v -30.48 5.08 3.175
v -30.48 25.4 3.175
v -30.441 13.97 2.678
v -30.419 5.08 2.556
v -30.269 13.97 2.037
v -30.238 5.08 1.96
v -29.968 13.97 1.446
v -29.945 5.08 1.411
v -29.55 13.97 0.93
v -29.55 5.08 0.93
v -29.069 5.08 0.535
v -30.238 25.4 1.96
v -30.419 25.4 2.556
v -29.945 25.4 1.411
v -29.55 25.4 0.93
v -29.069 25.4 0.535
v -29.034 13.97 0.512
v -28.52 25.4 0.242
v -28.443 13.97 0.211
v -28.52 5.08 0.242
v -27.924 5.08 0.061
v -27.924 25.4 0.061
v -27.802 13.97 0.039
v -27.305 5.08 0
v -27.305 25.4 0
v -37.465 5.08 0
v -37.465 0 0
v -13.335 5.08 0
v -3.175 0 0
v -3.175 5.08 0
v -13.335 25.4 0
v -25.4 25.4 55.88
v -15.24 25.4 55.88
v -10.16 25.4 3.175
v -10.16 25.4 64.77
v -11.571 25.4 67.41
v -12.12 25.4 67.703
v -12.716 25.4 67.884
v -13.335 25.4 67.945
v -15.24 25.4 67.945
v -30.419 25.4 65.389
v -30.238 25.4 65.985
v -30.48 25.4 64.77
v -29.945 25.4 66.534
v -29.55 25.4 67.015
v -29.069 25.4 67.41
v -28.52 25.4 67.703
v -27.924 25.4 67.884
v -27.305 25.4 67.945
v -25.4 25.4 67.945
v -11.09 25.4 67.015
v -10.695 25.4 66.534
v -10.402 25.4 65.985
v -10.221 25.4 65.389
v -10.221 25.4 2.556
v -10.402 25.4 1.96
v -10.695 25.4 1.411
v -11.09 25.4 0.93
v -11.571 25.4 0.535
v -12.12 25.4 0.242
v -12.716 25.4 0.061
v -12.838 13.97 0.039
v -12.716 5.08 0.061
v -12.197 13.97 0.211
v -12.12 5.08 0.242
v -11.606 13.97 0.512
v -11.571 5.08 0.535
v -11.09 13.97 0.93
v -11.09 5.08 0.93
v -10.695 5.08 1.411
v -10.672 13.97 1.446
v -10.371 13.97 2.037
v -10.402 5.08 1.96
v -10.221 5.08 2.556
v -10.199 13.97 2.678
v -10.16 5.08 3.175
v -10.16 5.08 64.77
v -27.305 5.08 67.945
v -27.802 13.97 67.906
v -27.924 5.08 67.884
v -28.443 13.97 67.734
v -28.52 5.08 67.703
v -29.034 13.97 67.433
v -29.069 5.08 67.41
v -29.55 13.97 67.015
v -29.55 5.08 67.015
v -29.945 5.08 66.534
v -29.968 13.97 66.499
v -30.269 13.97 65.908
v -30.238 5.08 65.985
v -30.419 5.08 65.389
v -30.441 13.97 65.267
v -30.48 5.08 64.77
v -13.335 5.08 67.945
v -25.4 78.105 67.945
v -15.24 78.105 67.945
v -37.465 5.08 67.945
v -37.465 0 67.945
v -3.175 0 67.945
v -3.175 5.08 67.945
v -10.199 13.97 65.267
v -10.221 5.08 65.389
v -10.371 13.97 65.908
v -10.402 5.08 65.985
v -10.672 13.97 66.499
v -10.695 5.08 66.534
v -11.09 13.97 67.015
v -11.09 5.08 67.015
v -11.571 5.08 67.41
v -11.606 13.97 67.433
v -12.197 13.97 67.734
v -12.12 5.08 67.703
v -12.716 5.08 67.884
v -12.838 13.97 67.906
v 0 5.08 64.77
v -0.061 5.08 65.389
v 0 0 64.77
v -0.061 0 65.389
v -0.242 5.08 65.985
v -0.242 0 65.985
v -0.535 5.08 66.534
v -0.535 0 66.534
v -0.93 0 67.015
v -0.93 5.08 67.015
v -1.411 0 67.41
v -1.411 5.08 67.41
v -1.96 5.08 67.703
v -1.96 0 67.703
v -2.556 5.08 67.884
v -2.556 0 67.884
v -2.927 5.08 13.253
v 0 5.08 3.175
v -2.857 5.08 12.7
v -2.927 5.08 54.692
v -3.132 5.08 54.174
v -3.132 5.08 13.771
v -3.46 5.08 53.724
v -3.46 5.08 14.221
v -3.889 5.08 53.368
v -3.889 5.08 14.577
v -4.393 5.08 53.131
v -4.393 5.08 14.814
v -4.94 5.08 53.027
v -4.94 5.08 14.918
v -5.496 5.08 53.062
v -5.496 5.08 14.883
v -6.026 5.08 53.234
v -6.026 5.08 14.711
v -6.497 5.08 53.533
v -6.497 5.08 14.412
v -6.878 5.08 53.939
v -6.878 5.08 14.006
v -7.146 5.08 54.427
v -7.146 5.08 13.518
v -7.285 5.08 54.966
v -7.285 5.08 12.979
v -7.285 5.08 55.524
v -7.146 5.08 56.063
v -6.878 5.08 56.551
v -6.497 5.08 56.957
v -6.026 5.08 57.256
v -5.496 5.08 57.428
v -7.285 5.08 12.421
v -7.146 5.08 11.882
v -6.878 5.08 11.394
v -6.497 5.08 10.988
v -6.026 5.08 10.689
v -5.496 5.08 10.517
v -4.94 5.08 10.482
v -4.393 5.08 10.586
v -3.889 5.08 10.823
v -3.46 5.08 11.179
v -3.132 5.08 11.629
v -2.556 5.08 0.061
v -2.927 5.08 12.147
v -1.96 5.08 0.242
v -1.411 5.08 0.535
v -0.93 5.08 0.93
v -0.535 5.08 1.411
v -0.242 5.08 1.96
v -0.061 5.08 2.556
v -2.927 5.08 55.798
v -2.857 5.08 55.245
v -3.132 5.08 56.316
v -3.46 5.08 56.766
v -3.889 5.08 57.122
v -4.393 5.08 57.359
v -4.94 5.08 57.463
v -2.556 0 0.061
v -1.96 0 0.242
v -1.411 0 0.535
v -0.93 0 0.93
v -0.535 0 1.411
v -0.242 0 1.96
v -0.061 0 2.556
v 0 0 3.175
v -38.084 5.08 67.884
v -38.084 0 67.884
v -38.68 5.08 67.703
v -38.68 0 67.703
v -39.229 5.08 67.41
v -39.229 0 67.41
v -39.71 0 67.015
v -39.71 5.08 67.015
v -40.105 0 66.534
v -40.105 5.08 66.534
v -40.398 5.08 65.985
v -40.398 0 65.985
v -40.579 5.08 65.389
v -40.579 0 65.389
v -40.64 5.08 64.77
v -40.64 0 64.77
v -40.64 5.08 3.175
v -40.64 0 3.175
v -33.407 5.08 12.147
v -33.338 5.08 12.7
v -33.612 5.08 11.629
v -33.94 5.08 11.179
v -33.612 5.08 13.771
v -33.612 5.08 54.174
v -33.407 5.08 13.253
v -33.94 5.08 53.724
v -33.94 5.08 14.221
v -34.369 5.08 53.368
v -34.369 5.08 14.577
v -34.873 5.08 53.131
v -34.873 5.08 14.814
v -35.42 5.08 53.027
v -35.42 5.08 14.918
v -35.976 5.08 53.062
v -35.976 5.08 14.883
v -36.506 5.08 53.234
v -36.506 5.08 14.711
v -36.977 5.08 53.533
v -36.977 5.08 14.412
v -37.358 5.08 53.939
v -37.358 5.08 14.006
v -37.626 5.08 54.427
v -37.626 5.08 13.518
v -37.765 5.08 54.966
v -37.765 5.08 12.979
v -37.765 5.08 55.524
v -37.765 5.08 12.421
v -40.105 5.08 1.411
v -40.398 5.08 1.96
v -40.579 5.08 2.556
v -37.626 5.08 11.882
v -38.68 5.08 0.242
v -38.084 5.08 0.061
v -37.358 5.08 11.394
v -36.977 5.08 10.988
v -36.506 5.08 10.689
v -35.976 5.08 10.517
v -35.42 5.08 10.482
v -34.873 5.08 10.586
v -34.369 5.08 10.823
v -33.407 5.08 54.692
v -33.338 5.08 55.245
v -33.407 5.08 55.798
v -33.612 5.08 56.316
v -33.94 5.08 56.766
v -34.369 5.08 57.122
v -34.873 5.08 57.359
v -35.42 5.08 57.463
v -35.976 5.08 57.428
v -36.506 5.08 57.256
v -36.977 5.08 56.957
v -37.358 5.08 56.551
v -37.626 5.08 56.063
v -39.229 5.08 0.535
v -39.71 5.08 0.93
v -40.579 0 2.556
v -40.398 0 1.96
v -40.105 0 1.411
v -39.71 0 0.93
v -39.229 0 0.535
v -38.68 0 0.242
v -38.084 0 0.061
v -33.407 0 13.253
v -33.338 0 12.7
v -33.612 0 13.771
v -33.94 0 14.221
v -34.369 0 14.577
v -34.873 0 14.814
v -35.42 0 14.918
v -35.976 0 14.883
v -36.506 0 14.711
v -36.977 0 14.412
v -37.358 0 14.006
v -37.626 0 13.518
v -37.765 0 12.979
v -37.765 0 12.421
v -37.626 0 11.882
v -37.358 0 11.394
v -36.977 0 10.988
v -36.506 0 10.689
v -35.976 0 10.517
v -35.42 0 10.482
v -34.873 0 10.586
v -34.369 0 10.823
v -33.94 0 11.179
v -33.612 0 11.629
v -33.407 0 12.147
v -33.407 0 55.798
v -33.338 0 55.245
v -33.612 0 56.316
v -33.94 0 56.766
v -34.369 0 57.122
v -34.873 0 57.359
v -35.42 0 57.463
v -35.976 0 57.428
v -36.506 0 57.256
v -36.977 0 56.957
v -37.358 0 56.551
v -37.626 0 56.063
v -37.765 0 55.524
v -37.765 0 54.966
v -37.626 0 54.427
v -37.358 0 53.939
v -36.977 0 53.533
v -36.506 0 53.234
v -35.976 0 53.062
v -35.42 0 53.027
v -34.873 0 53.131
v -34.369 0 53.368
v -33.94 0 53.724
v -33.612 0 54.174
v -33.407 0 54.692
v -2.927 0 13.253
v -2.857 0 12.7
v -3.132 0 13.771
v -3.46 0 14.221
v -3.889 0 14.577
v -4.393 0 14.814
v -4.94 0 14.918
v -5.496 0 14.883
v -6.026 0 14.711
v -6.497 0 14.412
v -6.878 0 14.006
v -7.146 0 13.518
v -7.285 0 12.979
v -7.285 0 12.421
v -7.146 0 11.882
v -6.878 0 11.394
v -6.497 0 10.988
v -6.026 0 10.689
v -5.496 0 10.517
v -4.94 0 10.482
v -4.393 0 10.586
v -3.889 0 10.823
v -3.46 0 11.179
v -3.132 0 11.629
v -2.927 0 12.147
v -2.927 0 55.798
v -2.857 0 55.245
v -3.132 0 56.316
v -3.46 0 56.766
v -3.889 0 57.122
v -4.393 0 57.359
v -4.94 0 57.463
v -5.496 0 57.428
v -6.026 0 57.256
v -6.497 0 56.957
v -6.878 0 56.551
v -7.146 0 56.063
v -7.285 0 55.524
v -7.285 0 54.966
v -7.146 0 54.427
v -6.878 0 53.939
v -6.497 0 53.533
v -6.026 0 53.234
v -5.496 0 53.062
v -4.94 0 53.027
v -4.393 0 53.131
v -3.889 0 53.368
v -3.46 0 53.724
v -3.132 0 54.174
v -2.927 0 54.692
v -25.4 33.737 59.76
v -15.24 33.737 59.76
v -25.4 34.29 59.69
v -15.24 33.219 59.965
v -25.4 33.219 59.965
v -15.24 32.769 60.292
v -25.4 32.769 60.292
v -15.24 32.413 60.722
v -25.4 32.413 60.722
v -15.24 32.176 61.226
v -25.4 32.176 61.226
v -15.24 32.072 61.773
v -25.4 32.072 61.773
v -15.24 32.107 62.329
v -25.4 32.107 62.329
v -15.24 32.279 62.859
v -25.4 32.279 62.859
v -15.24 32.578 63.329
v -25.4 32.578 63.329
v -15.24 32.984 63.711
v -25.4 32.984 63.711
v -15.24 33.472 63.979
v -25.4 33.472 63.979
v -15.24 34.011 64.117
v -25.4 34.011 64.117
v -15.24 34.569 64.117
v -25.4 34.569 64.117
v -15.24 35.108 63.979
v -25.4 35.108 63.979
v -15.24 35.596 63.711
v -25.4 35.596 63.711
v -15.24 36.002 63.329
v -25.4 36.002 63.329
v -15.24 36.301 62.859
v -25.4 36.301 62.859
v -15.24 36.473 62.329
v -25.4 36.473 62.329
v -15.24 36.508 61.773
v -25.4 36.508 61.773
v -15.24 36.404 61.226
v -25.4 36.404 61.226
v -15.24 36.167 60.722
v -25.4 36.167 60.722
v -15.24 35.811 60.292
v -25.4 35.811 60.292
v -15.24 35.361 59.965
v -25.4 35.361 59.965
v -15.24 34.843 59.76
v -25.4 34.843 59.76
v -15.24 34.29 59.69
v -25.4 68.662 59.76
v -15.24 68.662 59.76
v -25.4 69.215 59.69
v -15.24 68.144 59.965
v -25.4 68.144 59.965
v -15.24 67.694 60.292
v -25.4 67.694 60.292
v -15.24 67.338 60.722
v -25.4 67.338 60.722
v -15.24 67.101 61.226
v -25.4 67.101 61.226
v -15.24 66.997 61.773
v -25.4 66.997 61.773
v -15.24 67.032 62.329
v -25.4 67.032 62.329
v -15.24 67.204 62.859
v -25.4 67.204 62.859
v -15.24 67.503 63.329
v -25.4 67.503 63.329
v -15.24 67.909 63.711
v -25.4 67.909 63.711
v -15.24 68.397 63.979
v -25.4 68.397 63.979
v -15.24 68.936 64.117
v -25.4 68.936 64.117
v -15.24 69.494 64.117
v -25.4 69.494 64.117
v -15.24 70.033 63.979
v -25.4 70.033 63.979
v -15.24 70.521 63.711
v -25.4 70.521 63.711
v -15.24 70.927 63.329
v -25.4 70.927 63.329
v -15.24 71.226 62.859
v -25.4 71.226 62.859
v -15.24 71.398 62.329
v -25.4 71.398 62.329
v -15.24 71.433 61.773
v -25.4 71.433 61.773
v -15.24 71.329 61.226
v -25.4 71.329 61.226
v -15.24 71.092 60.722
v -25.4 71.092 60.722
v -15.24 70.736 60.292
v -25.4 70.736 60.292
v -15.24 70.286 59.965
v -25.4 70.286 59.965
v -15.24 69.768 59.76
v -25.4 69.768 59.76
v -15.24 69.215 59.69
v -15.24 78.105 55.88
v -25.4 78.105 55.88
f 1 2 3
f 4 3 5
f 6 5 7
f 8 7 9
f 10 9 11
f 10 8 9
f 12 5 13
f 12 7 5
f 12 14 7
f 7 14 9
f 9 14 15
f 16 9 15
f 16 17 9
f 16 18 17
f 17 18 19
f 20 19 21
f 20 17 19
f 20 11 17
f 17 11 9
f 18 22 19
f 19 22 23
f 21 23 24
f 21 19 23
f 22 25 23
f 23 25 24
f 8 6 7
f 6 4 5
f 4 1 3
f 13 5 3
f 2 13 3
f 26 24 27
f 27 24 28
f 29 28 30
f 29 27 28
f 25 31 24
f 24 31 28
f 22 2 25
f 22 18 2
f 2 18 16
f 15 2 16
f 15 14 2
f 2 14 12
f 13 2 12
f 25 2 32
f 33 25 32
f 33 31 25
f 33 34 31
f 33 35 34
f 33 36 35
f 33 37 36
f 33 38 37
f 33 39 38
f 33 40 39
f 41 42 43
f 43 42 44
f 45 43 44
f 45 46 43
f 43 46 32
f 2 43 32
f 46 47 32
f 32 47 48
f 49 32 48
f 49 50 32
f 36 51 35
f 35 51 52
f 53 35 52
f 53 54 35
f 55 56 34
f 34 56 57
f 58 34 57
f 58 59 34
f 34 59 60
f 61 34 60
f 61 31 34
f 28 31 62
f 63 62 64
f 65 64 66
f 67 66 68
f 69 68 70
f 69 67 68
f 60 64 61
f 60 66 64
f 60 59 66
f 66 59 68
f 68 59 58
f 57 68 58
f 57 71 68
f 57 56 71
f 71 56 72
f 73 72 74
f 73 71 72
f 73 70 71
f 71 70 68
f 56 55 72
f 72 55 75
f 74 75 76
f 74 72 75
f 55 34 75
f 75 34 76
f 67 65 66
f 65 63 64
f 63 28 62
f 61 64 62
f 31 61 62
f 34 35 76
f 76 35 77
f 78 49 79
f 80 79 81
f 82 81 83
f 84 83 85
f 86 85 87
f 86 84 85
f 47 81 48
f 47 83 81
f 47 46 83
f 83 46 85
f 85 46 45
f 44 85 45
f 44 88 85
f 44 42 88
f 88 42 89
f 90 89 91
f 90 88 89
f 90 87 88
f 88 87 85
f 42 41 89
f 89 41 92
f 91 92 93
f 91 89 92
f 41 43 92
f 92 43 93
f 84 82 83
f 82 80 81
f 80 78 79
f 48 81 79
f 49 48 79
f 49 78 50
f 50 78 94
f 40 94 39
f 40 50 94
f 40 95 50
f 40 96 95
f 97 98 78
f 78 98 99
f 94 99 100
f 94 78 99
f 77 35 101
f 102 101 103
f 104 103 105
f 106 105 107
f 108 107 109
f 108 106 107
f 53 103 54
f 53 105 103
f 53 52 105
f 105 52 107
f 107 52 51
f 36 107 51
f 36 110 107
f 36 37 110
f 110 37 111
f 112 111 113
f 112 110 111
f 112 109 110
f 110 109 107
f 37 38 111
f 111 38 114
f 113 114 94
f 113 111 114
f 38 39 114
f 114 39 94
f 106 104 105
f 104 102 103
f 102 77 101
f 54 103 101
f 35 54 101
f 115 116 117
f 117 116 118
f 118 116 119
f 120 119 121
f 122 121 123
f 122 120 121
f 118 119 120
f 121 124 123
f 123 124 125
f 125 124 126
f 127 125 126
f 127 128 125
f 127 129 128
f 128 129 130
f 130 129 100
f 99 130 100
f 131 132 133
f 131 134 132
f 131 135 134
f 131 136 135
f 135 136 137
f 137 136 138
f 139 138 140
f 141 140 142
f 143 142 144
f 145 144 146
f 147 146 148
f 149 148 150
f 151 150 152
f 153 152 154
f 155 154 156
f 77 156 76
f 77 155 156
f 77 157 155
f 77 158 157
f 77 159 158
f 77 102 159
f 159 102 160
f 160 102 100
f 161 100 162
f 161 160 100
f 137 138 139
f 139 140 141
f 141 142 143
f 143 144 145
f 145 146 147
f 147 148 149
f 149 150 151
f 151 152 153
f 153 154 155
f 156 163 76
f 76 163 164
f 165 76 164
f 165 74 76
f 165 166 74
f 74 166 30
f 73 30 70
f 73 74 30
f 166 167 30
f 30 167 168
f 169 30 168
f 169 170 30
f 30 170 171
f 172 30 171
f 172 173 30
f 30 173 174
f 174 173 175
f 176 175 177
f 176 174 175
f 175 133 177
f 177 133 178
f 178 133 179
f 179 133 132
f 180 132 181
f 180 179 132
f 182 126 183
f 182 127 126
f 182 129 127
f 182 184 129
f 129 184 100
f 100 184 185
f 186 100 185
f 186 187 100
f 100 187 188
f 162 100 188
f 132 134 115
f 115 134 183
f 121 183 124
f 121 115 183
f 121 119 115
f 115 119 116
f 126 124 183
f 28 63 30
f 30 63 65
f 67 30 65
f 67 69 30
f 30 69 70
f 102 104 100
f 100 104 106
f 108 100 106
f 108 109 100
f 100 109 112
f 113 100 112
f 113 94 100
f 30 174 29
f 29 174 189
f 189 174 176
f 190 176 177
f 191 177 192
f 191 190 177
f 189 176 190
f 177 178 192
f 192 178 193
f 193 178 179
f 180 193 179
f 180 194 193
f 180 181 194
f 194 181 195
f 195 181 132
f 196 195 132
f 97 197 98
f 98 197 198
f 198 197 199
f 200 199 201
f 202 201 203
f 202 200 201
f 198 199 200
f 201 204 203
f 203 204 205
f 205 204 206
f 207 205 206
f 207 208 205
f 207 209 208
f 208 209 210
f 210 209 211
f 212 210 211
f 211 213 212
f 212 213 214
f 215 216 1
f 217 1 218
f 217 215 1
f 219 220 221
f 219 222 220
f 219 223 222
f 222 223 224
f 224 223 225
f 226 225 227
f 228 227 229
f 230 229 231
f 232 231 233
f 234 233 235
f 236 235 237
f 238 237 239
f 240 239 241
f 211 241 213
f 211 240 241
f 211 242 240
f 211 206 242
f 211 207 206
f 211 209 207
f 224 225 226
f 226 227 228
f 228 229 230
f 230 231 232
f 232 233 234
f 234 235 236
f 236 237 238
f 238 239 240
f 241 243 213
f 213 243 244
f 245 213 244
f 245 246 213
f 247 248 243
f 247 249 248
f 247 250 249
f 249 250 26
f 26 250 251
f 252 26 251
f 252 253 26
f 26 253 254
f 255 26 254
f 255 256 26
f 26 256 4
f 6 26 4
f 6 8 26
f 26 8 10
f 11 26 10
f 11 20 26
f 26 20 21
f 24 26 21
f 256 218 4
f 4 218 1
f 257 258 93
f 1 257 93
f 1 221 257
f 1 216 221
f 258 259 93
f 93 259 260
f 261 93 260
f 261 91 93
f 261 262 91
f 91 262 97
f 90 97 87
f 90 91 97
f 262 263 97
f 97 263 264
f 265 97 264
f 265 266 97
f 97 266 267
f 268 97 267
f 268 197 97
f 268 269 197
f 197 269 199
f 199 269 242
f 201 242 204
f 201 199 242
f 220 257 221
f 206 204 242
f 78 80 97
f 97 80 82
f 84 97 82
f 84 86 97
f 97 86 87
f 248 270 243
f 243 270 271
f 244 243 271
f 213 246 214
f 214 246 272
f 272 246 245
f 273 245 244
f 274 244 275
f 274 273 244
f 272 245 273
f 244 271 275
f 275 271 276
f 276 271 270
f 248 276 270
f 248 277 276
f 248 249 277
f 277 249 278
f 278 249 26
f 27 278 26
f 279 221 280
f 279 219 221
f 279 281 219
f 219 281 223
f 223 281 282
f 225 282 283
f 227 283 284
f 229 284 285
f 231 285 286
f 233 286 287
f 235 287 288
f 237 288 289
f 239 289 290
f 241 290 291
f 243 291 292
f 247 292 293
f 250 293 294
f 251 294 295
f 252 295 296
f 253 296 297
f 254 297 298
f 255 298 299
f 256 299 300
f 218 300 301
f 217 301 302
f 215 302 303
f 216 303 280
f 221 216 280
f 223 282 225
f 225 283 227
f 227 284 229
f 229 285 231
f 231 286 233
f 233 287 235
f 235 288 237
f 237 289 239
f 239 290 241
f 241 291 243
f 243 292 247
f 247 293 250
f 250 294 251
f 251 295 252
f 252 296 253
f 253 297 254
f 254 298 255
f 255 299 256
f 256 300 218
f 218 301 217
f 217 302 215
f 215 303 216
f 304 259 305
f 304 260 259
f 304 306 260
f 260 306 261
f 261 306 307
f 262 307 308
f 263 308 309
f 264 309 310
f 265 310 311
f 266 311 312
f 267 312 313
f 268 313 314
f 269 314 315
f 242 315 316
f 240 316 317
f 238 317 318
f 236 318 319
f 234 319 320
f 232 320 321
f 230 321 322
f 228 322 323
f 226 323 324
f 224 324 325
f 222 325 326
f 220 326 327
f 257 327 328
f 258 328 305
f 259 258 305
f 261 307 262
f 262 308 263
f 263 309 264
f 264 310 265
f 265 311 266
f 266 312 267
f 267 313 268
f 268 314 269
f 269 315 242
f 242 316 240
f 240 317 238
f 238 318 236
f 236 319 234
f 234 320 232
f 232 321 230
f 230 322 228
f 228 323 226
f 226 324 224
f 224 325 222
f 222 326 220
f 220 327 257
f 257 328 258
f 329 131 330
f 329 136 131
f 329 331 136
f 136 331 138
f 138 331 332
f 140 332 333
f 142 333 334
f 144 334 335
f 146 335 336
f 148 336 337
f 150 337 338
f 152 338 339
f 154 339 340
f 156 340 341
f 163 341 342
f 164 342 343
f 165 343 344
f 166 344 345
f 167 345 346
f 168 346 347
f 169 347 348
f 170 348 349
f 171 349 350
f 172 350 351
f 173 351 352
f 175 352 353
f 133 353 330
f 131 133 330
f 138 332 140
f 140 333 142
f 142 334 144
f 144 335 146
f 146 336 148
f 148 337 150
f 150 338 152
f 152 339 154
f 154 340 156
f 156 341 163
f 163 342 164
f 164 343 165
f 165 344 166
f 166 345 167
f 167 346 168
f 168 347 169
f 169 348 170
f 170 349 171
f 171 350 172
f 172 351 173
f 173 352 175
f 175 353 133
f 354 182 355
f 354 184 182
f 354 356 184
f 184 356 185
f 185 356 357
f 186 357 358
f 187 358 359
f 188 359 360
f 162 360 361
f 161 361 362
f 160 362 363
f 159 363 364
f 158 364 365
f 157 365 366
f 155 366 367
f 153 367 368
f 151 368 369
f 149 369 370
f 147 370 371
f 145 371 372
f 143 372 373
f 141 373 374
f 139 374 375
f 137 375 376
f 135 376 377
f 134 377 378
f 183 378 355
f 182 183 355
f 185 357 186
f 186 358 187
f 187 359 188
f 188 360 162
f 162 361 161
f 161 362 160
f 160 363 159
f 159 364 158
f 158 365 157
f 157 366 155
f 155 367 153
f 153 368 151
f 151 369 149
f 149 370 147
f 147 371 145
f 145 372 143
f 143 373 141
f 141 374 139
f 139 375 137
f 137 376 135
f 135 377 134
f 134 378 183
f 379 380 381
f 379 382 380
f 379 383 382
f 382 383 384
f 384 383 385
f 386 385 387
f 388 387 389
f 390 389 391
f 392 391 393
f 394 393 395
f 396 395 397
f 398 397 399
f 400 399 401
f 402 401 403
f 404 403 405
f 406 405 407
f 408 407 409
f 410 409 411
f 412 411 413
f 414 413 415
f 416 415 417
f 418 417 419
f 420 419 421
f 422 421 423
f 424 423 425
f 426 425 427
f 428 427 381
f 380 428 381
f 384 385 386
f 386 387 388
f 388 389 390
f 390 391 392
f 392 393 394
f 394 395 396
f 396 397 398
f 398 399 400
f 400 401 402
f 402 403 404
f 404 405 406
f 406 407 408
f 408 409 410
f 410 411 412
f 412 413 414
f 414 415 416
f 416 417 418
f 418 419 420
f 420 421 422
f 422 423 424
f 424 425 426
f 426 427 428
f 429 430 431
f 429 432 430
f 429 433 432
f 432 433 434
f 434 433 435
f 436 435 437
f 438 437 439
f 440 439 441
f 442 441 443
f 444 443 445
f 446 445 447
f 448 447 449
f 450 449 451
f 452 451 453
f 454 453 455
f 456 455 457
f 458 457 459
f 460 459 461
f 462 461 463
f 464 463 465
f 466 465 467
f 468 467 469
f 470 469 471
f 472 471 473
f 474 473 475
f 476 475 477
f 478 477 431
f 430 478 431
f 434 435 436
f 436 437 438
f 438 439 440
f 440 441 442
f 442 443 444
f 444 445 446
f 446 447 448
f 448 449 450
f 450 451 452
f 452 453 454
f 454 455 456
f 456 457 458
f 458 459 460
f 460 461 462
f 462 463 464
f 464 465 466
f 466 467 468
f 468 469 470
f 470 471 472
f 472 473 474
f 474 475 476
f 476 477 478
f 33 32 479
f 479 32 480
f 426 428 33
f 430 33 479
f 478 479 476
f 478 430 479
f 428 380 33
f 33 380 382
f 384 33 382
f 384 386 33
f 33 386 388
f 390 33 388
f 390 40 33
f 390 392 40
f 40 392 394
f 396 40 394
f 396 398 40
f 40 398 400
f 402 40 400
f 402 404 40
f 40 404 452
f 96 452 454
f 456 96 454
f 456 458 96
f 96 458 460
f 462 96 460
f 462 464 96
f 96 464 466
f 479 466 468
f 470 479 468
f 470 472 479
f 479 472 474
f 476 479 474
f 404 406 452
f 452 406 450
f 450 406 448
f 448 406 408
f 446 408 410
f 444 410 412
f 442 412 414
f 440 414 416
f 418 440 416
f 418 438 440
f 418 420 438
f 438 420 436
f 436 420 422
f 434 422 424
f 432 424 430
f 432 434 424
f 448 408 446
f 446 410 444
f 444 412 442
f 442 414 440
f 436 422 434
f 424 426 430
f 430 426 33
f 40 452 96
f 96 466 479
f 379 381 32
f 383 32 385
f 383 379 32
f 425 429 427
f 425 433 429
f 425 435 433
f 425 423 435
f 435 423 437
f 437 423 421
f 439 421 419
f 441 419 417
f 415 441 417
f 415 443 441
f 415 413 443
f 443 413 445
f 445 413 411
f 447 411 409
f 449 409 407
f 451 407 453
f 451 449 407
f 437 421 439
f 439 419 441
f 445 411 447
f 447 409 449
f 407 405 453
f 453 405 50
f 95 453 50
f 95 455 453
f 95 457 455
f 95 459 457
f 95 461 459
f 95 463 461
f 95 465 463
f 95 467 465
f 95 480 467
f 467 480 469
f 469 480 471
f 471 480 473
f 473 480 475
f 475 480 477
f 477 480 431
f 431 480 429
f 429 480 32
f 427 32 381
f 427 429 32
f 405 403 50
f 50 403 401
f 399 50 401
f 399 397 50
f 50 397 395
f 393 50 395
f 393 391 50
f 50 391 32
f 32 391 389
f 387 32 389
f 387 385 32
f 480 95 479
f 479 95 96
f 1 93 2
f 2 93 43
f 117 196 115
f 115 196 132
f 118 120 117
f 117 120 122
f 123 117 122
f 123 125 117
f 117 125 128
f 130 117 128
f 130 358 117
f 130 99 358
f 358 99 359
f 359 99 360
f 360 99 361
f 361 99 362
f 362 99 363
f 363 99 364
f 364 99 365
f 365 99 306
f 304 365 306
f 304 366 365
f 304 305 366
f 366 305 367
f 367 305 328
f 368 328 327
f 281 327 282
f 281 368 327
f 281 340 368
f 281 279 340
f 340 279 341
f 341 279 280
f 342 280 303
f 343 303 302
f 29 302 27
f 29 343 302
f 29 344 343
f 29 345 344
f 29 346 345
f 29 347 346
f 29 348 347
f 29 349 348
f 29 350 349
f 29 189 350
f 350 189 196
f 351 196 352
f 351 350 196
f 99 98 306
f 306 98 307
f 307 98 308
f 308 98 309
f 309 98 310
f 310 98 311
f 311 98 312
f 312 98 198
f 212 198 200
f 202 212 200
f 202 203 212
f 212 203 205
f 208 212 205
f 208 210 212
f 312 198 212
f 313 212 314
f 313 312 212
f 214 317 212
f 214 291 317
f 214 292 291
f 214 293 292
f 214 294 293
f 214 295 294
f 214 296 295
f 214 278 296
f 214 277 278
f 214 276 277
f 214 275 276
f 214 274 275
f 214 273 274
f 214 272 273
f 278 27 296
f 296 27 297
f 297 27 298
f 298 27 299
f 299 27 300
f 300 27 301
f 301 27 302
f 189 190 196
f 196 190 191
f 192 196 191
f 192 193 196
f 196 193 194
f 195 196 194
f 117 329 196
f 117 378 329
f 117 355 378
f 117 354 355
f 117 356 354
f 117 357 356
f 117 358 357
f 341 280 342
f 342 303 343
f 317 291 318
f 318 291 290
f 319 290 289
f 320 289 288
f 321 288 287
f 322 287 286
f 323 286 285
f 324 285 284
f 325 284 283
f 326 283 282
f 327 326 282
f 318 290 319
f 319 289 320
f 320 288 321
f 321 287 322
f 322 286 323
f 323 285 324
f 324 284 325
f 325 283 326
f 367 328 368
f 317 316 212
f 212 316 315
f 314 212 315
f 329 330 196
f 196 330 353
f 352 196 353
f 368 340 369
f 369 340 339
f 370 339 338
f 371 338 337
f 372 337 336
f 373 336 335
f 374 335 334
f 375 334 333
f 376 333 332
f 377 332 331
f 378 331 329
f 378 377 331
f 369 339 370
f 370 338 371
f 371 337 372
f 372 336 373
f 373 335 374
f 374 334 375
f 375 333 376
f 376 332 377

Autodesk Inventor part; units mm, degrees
ref_plane "YZ Plane" through (0, 0, 0) normal (1, 0, 0) x (0, 1, 0)
ref_plane "XZ Plane" through (0, 0, 0) normal (0, 1, 0) x (-1, 0, 0)
ref_plane "XY Plane" through (0, 0, 0) normal (0, 0, 1) x (1, 0, 0)
sketch "Sketch1" plane through (0, 0, 0) normal (0, 1, 0) x (-1, 0, 0)
  line L0 (0, 0) -> (40.64, 0)
  line L1 (40.64, 0) -> (40.64, 67.945)
  line L2 (40.64, 67.945) -> (0, 67.945)
  line L3 (0, 67.945) -> (0, 0)
  line L4 (10.16, 0) -> (10.16, 67.945)
  line L5 (30.48, 0) -> (30.48, 67.945)
  dimension "d0" = 40.64
  dimension "d1" = 67.945
extrude "Extrusion1" add sketch "Sketch1" along normal blind 5.08
sketch "Sketch2" plane through (0, 5.08, 0) normal (0, 1, 0) x (1, 0, 0)
  line L0 (0, 0) -> (-40.64, 0) projected
  line L1 (-40.64, -67.945) -> (0, -67.945) projected
  line L2 (0, -67.945) -> (0, 0) projected
  line L3 (-10.16, 0) -> (-10.16, -67.945)
  line L4 (-30.48, 0) -> (-30.48, -67.945)
extrude "Extrusion2" add sketch "Sketch2" along normal blind 20.32 contours L3 L1 L4 L0
sketch "Sketch3" plane through (0, 25.4, 0) normal (0, 1, 0) x (1, 0, 0)
  line L0 (-30.48, -67.945) -> (-10.16, -67.945) projected
  line L1 (-10.16, -67.945) -> (-10.16, 0) projected
  line L2 (-25.4, -55.88) -> (-15.24, -55.88)
  line L3 (-25.4, -55.88) -> (-25.4, -67.945)
  line L4 (-15.24, -55.88) -> (-15.24, -67.945)
  point P0 (0, 0)
extrude "Extrusion3" add sketch "Sketch3" along normal blind 52.705
sketch "Sketch4" plane through (-15.24, 25.4, 67.945) normal (1, 0, 0) x (0, 0, -1)
  circle A0 centre (6.0325, 8.89) radius 2.2225
  circle A1 centre (6.0325, 43.815) radius 2.2225
  point P0 (67.945, -25.4)
  dimension "d8" = 4.445
  dimension "d10" = 4.445
extrude "Extrusion4" cut sketch "Sketch4" against normal blind 52.705
sketch "Sketch5" plane through (0, 5.08, 0) normal (0, 1, 0) x (1, 0, 0)
  circle A0 centre (-5.08, -12.7) radius 2.2225
  circle A1 centre (-5.08, -55.245) radius 2.2225
  dimension "d14" = 4.445
  dimension "d16" = 4.445
extrude "Extrusion5" cut sketch "Sketch5" against normal blind 52.705
sketch "Sketch6" plane through (0, 5.08, 0) normal (0, 1, 0) x (1, 0, 0)
  circle A0 centre (-35.56, -12.7) radius 2.2225
  circle A1 centre (-35.56, -55.245) radius 2.2225
  point P0 (0, 0)
  dimension "d21" = 4.445
  dimension "d22" = 4.445
extrude "Extrusion6" cut sketch "Sketch6" against normal blind 52.705
fillet "Fillet1" radius 3.175 1 edges at (-40.64, 2.54, 0)
fillet "Fillet2" radius 3.175 1 edges at (-40.64, 2.54, 67.945)
fillet "Fillet3" radius 3.175 1 edges at (0, 2.54, 0)
fillet "Fillet4" radius 3.175 1 edges at (0, 2.54, 67.945)
fillet "Fillet7" radius 3.175 1 edges at (-10.16, 15.24, 67.945)
fillet "Fillet8" radius 3.175 1 edges at (-30.48, 15.24, 67.945)
fillet "Fillet9" radius 3.175 1 edges at (-10.16, 15.24, 0)
fillet "Fillet10" radius 3.175 1 edges at (-30.48, 15.24, 0)
properties part number "Autonomous - Encoder Mount"
